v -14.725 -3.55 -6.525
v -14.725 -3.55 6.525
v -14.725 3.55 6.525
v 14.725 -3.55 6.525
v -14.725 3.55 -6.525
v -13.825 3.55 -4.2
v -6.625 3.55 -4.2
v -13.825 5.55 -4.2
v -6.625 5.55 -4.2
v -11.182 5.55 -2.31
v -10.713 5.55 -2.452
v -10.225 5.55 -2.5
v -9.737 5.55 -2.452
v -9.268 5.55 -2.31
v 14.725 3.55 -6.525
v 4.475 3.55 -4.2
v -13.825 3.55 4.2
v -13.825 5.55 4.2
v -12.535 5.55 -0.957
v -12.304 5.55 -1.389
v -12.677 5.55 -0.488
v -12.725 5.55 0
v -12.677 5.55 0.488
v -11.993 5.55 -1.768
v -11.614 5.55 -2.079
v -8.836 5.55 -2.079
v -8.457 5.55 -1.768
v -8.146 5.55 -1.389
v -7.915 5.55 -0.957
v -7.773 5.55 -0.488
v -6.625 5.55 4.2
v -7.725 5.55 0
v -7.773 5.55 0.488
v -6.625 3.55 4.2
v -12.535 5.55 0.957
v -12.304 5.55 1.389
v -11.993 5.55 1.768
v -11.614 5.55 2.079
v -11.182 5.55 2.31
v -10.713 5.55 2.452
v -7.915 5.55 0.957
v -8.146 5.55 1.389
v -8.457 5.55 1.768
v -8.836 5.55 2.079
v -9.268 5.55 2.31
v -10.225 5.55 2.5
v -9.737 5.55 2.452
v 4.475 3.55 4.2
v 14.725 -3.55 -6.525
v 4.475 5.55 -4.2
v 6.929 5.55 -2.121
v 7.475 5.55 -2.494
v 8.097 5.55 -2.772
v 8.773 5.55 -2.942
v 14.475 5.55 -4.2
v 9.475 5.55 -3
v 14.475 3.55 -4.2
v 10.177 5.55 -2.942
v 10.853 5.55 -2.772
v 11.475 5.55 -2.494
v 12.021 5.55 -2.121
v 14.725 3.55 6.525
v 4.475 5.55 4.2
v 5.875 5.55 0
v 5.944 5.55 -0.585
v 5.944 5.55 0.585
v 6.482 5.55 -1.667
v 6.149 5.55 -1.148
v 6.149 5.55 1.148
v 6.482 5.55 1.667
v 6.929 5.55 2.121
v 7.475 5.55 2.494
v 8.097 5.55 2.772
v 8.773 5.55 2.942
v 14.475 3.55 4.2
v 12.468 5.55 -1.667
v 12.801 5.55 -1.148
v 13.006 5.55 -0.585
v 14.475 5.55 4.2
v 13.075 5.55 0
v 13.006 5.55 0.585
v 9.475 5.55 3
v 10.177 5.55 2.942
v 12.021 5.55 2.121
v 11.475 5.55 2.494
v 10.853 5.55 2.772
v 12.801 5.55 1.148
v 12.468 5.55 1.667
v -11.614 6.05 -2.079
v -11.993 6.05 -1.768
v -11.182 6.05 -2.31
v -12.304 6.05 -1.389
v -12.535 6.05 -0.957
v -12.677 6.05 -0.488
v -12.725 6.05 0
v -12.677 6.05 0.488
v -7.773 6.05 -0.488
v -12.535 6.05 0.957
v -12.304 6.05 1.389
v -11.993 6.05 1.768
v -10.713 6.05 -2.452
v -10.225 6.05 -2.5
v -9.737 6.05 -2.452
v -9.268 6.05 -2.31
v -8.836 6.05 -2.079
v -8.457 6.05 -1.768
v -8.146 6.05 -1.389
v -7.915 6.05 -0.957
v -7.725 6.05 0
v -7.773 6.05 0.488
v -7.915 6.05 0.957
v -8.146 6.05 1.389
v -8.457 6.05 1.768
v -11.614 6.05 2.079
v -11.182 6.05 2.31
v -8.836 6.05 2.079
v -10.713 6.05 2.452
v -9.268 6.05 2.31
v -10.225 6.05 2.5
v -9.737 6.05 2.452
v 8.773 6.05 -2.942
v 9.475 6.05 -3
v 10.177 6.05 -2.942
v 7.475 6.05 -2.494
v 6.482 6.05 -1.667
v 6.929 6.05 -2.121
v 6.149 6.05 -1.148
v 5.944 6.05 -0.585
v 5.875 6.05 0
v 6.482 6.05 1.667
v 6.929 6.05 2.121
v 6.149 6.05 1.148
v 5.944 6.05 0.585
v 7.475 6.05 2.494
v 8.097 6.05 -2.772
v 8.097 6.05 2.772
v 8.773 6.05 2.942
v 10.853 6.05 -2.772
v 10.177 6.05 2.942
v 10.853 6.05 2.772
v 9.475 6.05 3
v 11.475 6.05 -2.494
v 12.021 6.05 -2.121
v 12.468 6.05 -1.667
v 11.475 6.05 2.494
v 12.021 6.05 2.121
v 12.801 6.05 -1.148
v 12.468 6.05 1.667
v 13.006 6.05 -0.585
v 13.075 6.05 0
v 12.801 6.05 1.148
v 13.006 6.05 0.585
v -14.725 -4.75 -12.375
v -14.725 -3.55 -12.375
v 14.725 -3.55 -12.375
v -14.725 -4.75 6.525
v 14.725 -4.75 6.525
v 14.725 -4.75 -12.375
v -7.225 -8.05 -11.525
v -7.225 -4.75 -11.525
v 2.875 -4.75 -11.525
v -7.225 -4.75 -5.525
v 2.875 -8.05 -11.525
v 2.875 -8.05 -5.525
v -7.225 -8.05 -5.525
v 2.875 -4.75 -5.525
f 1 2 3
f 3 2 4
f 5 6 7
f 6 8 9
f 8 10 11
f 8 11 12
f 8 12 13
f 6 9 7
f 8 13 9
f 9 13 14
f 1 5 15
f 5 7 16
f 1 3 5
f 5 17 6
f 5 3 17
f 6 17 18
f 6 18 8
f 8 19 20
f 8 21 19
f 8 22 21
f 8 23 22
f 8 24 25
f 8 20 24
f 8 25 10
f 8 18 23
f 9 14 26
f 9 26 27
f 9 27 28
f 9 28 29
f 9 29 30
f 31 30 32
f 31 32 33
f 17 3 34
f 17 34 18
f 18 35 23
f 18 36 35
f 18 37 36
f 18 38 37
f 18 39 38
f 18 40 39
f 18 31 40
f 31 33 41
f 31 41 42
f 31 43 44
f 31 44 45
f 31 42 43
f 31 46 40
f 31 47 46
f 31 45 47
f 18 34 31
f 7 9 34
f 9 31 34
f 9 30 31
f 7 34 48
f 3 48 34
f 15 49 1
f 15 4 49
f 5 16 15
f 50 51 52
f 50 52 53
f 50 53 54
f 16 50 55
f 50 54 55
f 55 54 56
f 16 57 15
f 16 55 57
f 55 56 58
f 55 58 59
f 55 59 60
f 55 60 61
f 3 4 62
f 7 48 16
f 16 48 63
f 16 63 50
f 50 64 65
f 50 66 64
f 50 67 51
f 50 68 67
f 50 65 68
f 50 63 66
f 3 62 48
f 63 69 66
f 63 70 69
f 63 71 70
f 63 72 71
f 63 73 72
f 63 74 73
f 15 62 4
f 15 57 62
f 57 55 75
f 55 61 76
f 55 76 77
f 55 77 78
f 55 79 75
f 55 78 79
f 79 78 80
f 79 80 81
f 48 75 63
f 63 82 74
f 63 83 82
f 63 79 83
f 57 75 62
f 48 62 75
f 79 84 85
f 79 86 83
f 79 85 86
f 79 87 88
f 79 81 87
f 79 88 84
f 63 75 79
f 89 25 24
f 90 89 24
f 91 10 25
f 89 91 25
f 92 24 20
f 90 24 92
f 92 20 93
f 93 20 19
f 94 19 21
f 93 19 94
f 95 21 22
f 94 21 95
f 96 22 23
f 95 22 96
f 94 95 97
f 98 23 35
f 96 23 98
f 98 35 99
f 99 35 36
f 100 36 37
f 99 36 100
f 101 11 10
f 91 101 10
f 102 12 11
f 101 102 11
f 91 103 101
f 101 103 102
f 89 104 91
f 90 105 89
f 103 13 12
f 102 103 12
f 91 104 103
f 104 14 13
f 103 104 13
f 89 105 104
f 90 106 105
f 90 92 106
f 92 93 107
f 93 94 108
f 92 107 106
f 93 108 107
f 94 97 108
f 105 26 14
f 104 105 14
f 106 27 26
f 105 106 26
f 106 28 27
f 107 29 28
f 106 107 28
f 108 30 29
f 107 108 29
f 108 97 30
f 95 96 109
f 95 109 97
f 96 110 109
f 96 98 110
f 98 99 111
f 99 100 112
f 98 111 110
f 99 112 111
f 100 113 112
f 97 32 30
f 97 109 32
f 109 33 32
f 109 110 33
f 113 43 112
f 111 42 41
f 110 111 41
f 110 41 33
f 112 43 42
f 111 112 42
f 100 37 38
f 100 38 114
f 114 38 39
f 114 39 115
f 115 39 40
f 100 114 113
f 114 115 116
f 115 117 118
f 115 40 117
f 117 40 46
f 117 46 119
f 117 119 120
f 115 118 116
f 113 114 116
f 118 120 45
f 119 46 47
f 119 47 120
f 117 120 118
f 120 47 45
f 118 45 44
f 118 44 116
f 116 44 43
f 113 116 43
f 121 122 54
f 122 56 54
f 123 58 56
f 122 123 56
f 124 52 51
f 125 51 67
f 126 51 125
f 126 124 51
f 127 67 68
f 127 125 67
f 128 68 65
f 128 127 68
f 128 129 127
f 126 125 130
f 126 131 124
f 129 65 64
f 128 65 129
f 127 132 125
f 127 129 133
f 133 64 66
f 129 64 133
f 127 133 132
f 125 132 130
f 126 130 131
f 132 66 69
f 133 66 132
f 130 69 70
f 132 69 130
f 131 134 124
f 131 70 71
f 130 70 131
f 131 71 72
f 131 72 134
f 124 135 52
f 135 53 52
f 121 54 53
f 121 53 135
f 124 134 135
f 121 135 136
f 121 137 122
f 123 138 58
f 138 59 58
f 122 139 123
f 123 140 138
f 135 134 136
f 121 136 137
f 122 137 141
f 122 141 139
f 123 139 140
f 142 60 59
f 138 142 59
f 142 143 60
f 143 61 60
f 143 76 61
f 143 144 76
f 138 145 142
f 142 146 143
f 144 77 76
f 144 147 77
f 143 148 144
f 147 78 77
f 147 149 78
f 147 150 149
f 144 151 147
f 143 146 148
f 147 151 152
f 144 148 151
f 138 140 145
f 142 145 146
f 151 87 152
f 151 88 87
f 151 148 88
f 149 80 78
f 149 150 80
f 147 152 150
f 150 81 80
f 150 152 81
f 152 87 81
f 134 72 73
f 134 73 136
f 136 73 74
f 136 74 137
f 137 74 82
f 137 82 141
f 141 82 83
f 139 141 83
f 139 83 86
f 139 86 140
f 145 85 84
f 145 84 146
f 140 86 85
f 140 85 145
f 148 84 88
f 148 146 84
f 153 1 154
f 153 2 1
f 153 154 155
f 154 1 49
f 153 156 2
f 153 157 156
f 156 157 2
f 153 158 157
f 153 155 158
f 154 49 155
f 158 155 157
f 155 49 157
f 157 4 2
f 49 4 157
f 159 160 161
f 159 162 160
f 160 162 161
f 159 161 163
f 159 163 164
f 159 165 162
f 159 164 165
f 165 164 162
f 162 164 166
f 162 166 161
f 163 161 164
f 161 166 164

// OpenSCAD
/*
 * Sharp Distance Sensor GP2Y0D413K0F
 * Units: mm
 */

// 分解能の設定
$fn = 32;

// 寸法定義
CASE_W = 29.45;
CASE_H = 13.05;
CASE_D = 7.1;

LENS_PROTRUSION = 2.0;
LENS_H = 8.4;
LENS_W = 7.2; // 図中のレンズ部分の幅推定

EMITTER_X_OFFSET = 4.5; // 左端からエミッター中心まで
LENS_PITCH = 19.7;      // エミッター中心からレシーバー中心まで

PWB_W = 29.45;
PWB_H = 18.9;
PWB_T = 1.2;

CONN_W = 10.1;
CONN_D = 3.3;  // PWB背面からの厚み
CONN_X_OFFSET = 7.5; // 左端からコネクタ外壁まで

module gp2y0d413k0f() {
    color("DimGray") {
        // メインのレンズケース本体
        cube([CASE_W, CASE_D, CASE_H], center = true);
        
        // レンズ部分 (Emitter & Detector)
        // エミッター（左側）
        translate([-CASE_W/2 + EMITTER_X_OFFSET, CASE_D/2 + LENS_PROTRUSION/2, 0])
            cube([LENS_W, LENS_PROTRUSION, LENS_H], center = true);
            
        // デテクター（右側）
        translate([-CASE_W/2 + EMITTER_X_OFFSET + LENS_PITCH, CASE_D/2 + LENS_PROTRUSION/2, 0])
            cube([10, LENS_PROTRUSION, LENS_H], center = true); // 受光部は少し幅広
    }

    // PWB (基板部分)
    color("Sienna") {
        // PWBはケースの背面に配置。上端をケースの上端に合わせる
        translate([0, -(CASE_D/2 + PWB_T/2), (CASE_H/2) - (PWB_H/2)])
            cube([PWB_W, PWB_T, PWB_H], center = true);
    }

    // コネクタ部分
    color("White") {
        // コネクタのX位置計算 (左端から7.5mmの位置)
        conn_x = -CASE_W/2 + CONN_X_OFFSET + CONN_W/2;
        // PWBの下部から突き出している形状
        translate([conn_x, -(CASE_D/2 + PWB_T + CONN_D/2), -CASE_H/2 - 2])
            cube([CONN_W, CONN_D, 6], center = true);
    }
    
    // レンズ面の詳細（円筒状の表現を追加）
    color("Black") {
        // Emitter hole
        translate([-CASE_W/2 + EMITTER_X_OFFSET, CASE_D/2 + LENS_PROTRUSION, 0])
            rotate([-90, 0, 0])
                cylinder(d=5, h=0.5);
        
        // Detector hole
        translate([-CASE_W/2 + EMITTER_X_OFFSET + LENS_PITCH, CASE_D/2 + LENS_PROTRUSION, 0])
            rotate([-90, 0, 0])
                scale([1.2, 1, 1]) cylinder(d=6, h=0.5);
    }
}

// 実行
gp2y0d413k0f();

/*
座標系の説明:
- 原点(0,0,0)は、メインのレンズケース（29.45 x 13.05 x 7.1）の中心です。
- X軸: 幅方向
- Y軸: 奥行き方向（プラスがレンズ側、マイナスが基板側）
- Z軸: 高さ方向
*/
